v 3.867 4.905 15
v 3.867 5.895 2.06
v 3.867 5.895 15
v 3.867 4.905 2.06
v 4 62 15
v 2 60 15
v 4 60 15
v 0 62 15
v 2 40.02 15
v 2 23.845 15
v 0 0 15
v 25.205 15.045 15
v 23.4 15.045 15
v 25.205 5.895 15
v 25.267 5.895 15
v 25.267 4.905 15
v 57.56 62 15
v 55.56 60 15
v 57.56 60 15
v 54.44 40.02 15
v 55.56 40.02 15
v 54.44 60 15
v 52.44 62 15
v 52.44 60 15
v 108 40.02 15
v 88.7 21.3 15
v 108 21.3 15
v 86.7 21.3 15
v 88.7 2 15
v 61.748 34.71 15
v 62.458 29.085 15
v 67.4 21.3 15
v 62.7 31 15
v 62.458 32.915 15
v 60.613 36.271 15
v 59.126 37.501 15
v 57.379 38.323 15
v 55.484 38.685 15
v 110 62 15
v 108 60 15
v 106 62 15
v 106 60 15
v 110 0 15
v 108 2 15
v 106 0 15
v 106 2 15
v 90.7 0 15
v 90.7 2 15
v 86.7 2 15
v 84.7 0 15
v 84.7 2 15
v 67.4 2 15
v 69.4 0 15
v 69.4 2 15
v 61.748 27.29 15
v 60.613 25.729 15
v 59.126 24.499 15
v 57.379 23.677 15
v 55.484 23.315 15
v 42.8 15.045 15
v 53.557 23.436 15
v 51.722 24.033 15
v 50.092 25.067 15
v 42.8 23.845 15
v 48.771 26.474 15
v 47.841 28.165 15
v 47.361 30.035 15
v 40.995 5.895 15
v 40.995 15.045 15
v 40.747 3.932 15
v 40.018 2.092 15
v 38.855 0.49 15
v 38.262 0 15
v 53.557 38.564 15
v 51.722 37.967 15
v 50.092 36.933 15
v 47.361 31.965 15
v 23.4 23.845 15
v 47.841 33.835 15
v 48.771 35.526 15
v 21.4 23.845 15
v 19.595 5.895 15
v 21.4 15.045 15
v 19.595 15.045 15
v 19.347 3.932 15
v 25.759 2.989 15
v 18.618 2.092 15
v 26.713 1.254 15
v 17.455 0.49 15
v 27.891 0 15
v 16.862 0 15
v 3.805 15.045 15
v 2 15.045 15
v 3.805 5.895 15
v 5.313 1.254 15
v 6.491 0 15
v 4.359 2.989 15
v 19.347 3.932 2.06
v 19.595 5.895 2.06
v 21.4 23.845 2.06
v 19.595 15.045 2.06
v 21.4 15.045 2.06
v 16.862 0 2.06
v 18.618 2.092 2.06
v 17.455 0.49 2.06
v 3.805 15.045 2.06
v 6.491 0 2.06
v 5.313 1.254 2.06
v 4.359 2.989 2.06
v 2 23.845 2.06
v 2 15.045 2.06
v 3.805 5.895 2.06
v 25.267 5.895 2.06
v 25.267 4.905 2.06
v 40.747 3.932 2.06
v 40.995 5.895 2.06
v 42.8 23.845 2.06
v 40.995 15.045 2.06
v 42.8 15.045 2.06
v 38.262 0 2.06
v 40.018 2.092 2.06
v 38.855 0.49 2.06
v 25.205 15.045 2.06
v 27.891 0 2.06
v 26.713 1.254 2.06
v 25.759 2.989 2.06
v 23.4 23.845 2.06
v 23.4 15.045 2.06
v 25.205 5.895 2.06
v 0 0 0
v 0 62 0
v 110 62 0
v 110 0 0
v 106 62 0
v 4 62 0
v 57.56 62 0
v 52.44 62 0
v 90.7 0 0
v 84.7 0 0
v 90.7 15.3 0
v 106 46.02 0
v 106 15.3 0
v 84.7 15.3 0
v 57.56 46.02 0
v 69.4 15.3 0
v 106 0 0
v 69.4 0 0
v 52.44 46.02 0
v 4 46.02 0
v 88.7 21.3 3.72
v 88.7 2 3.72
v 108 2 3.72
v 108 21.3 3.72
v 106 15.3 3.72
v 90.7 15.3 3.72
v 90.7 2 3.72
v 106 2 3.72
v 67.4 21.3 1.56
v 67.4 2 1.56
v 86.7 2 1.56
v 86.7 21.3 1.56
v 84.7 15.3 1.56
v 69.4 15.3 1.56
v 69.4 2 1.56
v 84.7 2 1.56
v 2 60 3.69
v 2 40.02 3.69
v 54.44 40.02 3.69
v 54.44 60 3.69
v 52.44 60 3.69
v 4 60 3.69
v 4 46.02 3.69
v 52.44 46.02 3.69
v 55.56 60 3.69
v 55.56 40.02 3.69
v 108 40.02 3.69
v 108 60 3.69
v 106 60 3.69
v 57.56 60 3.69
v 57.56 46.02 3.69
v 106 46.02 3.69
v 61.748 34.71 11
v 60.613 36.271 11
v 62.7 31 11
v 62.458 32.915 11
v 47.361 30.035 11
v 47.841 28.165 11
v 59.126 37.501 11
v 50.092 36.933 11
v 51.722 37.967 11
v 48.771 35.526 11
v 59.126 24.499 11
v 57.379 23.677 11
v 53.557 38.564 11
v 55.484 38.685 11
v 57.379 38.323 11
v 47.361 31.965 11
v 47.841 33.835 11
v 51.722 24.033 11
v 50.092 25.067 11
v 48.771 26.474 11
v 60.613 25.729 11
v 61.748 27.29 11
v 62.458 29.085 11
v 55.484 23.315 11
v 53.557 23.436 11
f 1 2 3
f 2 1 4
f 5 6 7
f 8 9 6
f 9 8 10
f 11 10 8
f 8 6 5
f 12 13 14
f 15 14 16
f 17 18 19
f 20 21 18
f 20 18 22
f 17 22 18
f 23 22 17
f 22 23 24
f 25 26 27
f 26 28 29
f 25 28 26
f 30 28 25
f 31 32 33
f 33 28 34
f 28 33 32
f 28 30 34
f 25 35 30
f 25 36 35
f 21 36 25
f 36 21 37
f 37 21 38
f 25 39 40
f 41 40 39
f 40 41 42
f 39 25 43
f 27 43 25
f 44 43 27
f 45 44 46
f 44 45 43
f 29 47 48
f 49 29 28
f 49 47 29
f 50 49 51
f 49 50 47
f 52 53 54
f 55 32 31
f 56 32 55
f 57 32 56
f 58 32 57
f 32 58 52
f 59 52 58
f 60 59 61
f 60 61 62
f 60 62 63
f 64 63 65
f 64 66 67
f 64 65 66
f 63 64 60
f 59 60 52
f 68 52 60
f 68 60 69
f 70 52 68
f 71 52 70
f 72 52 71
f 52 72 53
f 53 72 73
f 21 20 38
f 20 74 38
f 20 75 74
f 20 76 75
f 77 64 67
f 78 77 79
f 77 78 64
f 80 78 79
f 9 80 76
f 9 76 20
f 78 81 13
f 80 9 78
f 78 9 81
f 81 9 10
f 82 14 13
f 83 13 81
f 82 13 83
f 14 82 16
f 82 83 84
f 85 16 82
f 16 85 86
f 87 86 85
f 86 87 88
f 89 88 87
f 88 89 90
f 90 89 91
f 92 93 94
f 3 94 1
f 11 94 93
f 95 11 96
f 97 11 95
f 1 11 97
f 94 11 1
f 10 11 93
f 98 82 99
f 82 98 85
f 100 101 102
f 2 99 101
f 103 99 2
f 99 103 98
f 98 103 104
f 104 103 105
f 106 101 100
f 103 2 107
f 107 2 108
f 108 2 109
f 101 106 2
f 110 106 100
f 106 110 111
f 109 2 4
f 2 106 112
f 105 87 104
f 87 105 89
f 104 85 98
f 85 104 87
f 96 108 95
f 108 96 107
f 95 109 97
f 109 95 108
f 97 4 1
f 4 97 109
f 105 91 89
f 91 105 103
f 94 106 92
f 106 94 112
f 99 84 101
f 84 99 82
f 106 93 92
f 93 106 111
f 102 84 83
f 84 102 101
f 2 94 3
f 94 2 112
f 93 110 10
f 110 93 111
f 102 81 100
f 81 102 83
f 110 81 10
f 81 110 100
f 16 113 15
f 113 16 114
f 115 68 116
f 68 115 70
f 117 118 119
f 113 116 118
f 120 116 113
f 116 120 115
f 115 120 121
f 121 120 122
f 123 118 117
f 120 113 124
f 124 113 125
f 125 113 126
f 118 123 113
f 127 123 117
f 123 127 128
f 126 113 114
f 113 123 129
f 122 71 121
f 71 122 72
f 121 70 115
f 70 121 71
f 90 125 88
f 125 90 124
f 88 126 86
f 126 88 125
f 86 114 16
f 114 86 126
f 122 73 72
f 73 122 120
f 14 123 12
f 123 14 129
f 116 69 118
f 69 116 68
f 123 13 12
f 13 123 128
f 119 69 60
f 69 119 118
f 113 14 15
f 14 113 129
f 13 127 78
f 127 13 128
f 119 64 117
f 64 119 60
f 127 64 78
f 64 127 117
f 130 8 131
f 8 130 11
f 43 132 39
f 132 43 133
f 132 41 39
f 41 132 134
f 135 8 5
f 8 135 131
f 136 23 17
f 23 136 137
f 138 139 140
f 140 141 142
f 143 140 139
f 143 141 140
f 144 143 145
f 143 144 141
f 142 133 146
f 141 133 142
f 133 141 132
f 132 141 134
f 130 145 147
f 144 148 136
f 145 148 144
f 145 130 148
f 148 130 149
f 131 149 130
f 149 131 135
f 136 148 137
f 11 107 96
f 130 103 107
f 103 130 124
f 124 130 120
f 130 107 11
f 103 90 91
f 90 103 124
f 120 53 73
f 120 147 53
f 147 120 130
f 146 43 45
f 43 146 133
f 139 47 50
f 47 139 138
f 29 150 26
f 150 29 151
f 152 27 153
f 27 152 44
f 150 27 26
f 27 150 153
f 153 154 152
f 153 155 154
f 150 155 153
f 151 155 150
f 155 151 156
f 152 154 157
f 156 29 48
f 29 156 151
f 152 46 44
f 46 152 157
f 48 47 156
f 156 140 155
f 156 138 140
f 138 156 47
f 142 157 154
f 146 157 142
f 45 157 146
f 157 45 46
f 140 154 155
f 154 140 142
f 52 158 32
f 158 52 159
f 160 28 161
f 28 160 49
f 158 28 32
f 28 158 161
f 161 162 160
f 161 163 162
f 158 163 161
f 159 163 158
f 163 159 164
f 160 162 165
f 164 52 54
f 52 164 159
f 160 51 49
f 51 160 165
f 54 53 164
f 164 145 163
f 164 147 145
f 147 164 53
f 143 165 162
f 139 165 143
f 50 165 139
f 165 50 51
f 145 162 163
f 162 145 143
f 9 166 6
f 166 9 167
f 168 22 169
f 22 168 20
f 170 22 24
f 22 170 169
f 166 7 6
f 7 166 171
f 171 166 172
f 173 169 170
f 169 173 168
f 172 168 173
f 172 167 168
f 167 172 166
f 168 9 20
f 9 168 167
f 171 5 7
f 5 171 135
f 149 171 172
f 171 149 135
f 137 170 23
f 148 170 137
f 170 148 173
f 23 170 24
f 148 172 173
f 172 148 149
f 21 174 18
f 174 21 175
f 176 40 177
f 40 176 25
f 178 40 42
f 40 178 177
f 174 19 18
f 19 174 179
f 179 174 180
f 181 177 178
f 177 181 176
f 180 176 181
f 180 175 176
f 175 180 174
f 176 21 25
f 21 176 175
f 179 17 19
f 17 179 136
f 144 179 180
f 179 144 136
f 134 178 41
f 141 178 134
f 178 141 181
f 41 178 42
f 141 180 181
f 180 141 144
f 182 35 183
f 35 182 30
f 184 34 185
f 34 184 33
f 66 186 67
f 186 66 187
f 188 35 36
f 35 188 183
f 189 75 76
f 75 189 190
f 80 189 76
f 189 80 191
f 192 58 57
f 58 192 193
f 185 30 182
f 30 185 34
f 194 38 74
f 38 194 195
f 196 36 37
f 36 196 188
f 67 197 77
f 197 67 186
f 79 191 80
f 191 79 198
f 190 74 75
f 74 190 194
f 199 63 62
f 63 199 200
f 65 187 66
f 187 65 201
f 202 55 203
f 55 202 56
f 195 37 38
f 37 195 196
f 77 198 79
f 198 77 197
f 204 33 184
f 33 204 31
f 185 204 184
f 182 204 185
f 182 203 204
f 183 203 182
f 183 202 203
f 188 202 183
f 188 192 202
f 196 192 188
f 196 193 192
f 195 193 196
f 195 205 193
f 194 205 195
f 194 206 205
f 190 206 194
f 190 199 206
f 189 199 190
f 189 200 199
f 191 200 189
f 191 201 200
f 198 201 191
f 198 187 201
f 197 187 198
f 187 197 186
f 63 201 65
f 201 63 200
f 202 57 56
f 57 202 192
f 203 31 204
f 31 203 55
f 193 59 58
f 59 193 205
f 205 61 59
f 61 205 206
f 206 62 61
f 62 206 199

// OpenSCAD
length = 110;
width = 62;
height = 15;

//Based on magnet size:
magnetBaseInnerDiameter = 15.4;
magnetHeight = 4.0;

//fourth box
//	ward abilities
//	10 in 2 piles of five
//	2.18 thick total 10.81 thick 
//	19.48 wid 51.94 long
//
//	staff markers 11 
//	pile 5 10.78 thick
//	pile 6 12.94 thick
//	single 2.17 thick 
//  17.8 x 17.8
//
//	grave tokens
//	12 
//	two stacks of six
//	single 2.05 thick 
//	one stack 12.44 thick
//	grave rounded part diameter of 15.29
//	total length 25 even 
//	wid at base 18.9 
//	wid of body 15.29

//grave tokens
//	12 
//	two stacks of six
//	single 2.05 thick 
//	one stack 12.44 thick
//	total length 25 even 
//	3 sections:
//		1. rounded tip - diameter 15.29
//		2. body - 15.29 width, 9.15 height
//		3. base - 18.9 width, 7.8 height

roundedTipDiameter = 15.29 + .5;
roundedTipOffset = 2;

bodyWidth = 15.29 + .5;
bodyLength = 8.65 + .5;

baseWidth = 18.9 + .5;
baseLength = 8.3 + .5;

graveHeight = 12.44 + .5;


staffTokenWidth = 18.8 + .5;
staffTokenLength = 18.8 + .5;
staffTokenHeight1 = 10.78 + .5;
staffTokenHeight2 = 12.94 + .5;

wardAbilityTokenWidth = 19.48 + .5;
wardAbilityTokenLength = 51.94 + .5;
wardAbilityTokenHeight = 10.81 + .5;

spaceBetweenCircles = 2;
wallThickness = spaceBetweenCircles;

squareLipWidthRemainder = 4;
squareLipLengthRemainder = 4;

difference(){
    cube([length, width, height]);

    translate([spaceBetweenCircles, 0, 0])
        Grave();
    translate([spaceBetweenCircles * 2 + baseWidth, 0, 0])
        Grave();
    
    
    translate(
        [
            length - (wallThickness + staffTokenLength),
            wallThickness,
            height - staffTokenHeight1
        ])
        cube([staffTokenLength,staffTokenWidth, staffTokenHeight1]);
    translate([
        length - (wallThickness + staffTokenLength - squareLipWidthRemainder/2),
        0,
        0])
        cube([
            staffTokenLength - squareLipWidthRemainder,
            staffTokenWidth - squareLipLengthRemainder,
            height]);
            
    translate(
        [
            length - (wallThickness * 2 + staffTokenLength * 2),
            wallThickness,
            height - staffTokenHeight2
        ])
        cube([staffTokenLength,staffTokenWidth, staffTokenHeight2]);
    translate([
        length - (wallThickness * 2 + staffTokenLength * 2 - squareLipWidthRemainder/2),
        0,
        0])
        cube([
            staffTokenLength - squareLipWidthRemainder,
            staffTokenWidth - squareLipLengthRemainder,
            height]);       

    
    
    translate(
        [
            wallThickness,
            width - (wardAbilityTokenWidth + wallThickness),
            height - wardAbilityTokenHeight
        ])
        cube([wardAbilityTokenLength,wardAbilityTokenWidth, wardAbilityTokenHeight]);
    translate([
        wallThickness + squareLipWidthRemainder/2,
        width - (wardAbilityTokenWidth - squareLipLengthRemainder),
        0])
        cube([
            wardAbilityTokenLength - squareLipWidthRemainder,
            wardAbilityTokenWidth - squareLipLengthRemainder,
            height]);
    


    translate(
        [
            length - (wallThickness + wardAbilityTokenLength),
            width - (wardAbilityTokenWidth + wallThickness),
            height - wardAbilityTokenHeight
        ])
        cube([wardAbilityTokenLength,wardAbilityTokenWidth, wardAbilityTokenHeight]);
    translate([
        length - (wallThickness + wardAbilityTokenLength - squareLipWidthRemainder/2),
        width - (wardAbilityTokenWidth - squareLipLengthRemainder),
        0])
        cube([
            wardAbilityTokenLength - squareLipWidthRemainder,
            wardAbilityTokenWidth - squareLipLengthRemainder,
            height]);

            
    
   

   
   
    translate([length/2, width/2, height - magnetHeight])
        cylinder(magnetHeight, d=magnetBaseInnerDiameter);
        

}

module Grave()
{
    padding = (baseWidth - bodyWidth) / 2;
    translate(
        [
            roundedTipDiameter/2 + padding,  
            roundedTipDiameter/2 - roundedTipOffset,
            height - graveHeight
        ])
        cylinder(graveHeight, d=roundedTipDiameter);

    
    translate(
        [   
            padding,
            roundedTipDiameter/2 - roundedTipOffset,
            height - graveHeight
        ])
        cube([bodyWidth,bodyLength,graveHeight]);
    
    translate(
        [   
            0,
            roundedTipDiameter/2 - roundedTipOffset + bodyLength,
            height - graveHeight
        ])
        cube([baseWidth,baseLength,graveHeight]); 
}
